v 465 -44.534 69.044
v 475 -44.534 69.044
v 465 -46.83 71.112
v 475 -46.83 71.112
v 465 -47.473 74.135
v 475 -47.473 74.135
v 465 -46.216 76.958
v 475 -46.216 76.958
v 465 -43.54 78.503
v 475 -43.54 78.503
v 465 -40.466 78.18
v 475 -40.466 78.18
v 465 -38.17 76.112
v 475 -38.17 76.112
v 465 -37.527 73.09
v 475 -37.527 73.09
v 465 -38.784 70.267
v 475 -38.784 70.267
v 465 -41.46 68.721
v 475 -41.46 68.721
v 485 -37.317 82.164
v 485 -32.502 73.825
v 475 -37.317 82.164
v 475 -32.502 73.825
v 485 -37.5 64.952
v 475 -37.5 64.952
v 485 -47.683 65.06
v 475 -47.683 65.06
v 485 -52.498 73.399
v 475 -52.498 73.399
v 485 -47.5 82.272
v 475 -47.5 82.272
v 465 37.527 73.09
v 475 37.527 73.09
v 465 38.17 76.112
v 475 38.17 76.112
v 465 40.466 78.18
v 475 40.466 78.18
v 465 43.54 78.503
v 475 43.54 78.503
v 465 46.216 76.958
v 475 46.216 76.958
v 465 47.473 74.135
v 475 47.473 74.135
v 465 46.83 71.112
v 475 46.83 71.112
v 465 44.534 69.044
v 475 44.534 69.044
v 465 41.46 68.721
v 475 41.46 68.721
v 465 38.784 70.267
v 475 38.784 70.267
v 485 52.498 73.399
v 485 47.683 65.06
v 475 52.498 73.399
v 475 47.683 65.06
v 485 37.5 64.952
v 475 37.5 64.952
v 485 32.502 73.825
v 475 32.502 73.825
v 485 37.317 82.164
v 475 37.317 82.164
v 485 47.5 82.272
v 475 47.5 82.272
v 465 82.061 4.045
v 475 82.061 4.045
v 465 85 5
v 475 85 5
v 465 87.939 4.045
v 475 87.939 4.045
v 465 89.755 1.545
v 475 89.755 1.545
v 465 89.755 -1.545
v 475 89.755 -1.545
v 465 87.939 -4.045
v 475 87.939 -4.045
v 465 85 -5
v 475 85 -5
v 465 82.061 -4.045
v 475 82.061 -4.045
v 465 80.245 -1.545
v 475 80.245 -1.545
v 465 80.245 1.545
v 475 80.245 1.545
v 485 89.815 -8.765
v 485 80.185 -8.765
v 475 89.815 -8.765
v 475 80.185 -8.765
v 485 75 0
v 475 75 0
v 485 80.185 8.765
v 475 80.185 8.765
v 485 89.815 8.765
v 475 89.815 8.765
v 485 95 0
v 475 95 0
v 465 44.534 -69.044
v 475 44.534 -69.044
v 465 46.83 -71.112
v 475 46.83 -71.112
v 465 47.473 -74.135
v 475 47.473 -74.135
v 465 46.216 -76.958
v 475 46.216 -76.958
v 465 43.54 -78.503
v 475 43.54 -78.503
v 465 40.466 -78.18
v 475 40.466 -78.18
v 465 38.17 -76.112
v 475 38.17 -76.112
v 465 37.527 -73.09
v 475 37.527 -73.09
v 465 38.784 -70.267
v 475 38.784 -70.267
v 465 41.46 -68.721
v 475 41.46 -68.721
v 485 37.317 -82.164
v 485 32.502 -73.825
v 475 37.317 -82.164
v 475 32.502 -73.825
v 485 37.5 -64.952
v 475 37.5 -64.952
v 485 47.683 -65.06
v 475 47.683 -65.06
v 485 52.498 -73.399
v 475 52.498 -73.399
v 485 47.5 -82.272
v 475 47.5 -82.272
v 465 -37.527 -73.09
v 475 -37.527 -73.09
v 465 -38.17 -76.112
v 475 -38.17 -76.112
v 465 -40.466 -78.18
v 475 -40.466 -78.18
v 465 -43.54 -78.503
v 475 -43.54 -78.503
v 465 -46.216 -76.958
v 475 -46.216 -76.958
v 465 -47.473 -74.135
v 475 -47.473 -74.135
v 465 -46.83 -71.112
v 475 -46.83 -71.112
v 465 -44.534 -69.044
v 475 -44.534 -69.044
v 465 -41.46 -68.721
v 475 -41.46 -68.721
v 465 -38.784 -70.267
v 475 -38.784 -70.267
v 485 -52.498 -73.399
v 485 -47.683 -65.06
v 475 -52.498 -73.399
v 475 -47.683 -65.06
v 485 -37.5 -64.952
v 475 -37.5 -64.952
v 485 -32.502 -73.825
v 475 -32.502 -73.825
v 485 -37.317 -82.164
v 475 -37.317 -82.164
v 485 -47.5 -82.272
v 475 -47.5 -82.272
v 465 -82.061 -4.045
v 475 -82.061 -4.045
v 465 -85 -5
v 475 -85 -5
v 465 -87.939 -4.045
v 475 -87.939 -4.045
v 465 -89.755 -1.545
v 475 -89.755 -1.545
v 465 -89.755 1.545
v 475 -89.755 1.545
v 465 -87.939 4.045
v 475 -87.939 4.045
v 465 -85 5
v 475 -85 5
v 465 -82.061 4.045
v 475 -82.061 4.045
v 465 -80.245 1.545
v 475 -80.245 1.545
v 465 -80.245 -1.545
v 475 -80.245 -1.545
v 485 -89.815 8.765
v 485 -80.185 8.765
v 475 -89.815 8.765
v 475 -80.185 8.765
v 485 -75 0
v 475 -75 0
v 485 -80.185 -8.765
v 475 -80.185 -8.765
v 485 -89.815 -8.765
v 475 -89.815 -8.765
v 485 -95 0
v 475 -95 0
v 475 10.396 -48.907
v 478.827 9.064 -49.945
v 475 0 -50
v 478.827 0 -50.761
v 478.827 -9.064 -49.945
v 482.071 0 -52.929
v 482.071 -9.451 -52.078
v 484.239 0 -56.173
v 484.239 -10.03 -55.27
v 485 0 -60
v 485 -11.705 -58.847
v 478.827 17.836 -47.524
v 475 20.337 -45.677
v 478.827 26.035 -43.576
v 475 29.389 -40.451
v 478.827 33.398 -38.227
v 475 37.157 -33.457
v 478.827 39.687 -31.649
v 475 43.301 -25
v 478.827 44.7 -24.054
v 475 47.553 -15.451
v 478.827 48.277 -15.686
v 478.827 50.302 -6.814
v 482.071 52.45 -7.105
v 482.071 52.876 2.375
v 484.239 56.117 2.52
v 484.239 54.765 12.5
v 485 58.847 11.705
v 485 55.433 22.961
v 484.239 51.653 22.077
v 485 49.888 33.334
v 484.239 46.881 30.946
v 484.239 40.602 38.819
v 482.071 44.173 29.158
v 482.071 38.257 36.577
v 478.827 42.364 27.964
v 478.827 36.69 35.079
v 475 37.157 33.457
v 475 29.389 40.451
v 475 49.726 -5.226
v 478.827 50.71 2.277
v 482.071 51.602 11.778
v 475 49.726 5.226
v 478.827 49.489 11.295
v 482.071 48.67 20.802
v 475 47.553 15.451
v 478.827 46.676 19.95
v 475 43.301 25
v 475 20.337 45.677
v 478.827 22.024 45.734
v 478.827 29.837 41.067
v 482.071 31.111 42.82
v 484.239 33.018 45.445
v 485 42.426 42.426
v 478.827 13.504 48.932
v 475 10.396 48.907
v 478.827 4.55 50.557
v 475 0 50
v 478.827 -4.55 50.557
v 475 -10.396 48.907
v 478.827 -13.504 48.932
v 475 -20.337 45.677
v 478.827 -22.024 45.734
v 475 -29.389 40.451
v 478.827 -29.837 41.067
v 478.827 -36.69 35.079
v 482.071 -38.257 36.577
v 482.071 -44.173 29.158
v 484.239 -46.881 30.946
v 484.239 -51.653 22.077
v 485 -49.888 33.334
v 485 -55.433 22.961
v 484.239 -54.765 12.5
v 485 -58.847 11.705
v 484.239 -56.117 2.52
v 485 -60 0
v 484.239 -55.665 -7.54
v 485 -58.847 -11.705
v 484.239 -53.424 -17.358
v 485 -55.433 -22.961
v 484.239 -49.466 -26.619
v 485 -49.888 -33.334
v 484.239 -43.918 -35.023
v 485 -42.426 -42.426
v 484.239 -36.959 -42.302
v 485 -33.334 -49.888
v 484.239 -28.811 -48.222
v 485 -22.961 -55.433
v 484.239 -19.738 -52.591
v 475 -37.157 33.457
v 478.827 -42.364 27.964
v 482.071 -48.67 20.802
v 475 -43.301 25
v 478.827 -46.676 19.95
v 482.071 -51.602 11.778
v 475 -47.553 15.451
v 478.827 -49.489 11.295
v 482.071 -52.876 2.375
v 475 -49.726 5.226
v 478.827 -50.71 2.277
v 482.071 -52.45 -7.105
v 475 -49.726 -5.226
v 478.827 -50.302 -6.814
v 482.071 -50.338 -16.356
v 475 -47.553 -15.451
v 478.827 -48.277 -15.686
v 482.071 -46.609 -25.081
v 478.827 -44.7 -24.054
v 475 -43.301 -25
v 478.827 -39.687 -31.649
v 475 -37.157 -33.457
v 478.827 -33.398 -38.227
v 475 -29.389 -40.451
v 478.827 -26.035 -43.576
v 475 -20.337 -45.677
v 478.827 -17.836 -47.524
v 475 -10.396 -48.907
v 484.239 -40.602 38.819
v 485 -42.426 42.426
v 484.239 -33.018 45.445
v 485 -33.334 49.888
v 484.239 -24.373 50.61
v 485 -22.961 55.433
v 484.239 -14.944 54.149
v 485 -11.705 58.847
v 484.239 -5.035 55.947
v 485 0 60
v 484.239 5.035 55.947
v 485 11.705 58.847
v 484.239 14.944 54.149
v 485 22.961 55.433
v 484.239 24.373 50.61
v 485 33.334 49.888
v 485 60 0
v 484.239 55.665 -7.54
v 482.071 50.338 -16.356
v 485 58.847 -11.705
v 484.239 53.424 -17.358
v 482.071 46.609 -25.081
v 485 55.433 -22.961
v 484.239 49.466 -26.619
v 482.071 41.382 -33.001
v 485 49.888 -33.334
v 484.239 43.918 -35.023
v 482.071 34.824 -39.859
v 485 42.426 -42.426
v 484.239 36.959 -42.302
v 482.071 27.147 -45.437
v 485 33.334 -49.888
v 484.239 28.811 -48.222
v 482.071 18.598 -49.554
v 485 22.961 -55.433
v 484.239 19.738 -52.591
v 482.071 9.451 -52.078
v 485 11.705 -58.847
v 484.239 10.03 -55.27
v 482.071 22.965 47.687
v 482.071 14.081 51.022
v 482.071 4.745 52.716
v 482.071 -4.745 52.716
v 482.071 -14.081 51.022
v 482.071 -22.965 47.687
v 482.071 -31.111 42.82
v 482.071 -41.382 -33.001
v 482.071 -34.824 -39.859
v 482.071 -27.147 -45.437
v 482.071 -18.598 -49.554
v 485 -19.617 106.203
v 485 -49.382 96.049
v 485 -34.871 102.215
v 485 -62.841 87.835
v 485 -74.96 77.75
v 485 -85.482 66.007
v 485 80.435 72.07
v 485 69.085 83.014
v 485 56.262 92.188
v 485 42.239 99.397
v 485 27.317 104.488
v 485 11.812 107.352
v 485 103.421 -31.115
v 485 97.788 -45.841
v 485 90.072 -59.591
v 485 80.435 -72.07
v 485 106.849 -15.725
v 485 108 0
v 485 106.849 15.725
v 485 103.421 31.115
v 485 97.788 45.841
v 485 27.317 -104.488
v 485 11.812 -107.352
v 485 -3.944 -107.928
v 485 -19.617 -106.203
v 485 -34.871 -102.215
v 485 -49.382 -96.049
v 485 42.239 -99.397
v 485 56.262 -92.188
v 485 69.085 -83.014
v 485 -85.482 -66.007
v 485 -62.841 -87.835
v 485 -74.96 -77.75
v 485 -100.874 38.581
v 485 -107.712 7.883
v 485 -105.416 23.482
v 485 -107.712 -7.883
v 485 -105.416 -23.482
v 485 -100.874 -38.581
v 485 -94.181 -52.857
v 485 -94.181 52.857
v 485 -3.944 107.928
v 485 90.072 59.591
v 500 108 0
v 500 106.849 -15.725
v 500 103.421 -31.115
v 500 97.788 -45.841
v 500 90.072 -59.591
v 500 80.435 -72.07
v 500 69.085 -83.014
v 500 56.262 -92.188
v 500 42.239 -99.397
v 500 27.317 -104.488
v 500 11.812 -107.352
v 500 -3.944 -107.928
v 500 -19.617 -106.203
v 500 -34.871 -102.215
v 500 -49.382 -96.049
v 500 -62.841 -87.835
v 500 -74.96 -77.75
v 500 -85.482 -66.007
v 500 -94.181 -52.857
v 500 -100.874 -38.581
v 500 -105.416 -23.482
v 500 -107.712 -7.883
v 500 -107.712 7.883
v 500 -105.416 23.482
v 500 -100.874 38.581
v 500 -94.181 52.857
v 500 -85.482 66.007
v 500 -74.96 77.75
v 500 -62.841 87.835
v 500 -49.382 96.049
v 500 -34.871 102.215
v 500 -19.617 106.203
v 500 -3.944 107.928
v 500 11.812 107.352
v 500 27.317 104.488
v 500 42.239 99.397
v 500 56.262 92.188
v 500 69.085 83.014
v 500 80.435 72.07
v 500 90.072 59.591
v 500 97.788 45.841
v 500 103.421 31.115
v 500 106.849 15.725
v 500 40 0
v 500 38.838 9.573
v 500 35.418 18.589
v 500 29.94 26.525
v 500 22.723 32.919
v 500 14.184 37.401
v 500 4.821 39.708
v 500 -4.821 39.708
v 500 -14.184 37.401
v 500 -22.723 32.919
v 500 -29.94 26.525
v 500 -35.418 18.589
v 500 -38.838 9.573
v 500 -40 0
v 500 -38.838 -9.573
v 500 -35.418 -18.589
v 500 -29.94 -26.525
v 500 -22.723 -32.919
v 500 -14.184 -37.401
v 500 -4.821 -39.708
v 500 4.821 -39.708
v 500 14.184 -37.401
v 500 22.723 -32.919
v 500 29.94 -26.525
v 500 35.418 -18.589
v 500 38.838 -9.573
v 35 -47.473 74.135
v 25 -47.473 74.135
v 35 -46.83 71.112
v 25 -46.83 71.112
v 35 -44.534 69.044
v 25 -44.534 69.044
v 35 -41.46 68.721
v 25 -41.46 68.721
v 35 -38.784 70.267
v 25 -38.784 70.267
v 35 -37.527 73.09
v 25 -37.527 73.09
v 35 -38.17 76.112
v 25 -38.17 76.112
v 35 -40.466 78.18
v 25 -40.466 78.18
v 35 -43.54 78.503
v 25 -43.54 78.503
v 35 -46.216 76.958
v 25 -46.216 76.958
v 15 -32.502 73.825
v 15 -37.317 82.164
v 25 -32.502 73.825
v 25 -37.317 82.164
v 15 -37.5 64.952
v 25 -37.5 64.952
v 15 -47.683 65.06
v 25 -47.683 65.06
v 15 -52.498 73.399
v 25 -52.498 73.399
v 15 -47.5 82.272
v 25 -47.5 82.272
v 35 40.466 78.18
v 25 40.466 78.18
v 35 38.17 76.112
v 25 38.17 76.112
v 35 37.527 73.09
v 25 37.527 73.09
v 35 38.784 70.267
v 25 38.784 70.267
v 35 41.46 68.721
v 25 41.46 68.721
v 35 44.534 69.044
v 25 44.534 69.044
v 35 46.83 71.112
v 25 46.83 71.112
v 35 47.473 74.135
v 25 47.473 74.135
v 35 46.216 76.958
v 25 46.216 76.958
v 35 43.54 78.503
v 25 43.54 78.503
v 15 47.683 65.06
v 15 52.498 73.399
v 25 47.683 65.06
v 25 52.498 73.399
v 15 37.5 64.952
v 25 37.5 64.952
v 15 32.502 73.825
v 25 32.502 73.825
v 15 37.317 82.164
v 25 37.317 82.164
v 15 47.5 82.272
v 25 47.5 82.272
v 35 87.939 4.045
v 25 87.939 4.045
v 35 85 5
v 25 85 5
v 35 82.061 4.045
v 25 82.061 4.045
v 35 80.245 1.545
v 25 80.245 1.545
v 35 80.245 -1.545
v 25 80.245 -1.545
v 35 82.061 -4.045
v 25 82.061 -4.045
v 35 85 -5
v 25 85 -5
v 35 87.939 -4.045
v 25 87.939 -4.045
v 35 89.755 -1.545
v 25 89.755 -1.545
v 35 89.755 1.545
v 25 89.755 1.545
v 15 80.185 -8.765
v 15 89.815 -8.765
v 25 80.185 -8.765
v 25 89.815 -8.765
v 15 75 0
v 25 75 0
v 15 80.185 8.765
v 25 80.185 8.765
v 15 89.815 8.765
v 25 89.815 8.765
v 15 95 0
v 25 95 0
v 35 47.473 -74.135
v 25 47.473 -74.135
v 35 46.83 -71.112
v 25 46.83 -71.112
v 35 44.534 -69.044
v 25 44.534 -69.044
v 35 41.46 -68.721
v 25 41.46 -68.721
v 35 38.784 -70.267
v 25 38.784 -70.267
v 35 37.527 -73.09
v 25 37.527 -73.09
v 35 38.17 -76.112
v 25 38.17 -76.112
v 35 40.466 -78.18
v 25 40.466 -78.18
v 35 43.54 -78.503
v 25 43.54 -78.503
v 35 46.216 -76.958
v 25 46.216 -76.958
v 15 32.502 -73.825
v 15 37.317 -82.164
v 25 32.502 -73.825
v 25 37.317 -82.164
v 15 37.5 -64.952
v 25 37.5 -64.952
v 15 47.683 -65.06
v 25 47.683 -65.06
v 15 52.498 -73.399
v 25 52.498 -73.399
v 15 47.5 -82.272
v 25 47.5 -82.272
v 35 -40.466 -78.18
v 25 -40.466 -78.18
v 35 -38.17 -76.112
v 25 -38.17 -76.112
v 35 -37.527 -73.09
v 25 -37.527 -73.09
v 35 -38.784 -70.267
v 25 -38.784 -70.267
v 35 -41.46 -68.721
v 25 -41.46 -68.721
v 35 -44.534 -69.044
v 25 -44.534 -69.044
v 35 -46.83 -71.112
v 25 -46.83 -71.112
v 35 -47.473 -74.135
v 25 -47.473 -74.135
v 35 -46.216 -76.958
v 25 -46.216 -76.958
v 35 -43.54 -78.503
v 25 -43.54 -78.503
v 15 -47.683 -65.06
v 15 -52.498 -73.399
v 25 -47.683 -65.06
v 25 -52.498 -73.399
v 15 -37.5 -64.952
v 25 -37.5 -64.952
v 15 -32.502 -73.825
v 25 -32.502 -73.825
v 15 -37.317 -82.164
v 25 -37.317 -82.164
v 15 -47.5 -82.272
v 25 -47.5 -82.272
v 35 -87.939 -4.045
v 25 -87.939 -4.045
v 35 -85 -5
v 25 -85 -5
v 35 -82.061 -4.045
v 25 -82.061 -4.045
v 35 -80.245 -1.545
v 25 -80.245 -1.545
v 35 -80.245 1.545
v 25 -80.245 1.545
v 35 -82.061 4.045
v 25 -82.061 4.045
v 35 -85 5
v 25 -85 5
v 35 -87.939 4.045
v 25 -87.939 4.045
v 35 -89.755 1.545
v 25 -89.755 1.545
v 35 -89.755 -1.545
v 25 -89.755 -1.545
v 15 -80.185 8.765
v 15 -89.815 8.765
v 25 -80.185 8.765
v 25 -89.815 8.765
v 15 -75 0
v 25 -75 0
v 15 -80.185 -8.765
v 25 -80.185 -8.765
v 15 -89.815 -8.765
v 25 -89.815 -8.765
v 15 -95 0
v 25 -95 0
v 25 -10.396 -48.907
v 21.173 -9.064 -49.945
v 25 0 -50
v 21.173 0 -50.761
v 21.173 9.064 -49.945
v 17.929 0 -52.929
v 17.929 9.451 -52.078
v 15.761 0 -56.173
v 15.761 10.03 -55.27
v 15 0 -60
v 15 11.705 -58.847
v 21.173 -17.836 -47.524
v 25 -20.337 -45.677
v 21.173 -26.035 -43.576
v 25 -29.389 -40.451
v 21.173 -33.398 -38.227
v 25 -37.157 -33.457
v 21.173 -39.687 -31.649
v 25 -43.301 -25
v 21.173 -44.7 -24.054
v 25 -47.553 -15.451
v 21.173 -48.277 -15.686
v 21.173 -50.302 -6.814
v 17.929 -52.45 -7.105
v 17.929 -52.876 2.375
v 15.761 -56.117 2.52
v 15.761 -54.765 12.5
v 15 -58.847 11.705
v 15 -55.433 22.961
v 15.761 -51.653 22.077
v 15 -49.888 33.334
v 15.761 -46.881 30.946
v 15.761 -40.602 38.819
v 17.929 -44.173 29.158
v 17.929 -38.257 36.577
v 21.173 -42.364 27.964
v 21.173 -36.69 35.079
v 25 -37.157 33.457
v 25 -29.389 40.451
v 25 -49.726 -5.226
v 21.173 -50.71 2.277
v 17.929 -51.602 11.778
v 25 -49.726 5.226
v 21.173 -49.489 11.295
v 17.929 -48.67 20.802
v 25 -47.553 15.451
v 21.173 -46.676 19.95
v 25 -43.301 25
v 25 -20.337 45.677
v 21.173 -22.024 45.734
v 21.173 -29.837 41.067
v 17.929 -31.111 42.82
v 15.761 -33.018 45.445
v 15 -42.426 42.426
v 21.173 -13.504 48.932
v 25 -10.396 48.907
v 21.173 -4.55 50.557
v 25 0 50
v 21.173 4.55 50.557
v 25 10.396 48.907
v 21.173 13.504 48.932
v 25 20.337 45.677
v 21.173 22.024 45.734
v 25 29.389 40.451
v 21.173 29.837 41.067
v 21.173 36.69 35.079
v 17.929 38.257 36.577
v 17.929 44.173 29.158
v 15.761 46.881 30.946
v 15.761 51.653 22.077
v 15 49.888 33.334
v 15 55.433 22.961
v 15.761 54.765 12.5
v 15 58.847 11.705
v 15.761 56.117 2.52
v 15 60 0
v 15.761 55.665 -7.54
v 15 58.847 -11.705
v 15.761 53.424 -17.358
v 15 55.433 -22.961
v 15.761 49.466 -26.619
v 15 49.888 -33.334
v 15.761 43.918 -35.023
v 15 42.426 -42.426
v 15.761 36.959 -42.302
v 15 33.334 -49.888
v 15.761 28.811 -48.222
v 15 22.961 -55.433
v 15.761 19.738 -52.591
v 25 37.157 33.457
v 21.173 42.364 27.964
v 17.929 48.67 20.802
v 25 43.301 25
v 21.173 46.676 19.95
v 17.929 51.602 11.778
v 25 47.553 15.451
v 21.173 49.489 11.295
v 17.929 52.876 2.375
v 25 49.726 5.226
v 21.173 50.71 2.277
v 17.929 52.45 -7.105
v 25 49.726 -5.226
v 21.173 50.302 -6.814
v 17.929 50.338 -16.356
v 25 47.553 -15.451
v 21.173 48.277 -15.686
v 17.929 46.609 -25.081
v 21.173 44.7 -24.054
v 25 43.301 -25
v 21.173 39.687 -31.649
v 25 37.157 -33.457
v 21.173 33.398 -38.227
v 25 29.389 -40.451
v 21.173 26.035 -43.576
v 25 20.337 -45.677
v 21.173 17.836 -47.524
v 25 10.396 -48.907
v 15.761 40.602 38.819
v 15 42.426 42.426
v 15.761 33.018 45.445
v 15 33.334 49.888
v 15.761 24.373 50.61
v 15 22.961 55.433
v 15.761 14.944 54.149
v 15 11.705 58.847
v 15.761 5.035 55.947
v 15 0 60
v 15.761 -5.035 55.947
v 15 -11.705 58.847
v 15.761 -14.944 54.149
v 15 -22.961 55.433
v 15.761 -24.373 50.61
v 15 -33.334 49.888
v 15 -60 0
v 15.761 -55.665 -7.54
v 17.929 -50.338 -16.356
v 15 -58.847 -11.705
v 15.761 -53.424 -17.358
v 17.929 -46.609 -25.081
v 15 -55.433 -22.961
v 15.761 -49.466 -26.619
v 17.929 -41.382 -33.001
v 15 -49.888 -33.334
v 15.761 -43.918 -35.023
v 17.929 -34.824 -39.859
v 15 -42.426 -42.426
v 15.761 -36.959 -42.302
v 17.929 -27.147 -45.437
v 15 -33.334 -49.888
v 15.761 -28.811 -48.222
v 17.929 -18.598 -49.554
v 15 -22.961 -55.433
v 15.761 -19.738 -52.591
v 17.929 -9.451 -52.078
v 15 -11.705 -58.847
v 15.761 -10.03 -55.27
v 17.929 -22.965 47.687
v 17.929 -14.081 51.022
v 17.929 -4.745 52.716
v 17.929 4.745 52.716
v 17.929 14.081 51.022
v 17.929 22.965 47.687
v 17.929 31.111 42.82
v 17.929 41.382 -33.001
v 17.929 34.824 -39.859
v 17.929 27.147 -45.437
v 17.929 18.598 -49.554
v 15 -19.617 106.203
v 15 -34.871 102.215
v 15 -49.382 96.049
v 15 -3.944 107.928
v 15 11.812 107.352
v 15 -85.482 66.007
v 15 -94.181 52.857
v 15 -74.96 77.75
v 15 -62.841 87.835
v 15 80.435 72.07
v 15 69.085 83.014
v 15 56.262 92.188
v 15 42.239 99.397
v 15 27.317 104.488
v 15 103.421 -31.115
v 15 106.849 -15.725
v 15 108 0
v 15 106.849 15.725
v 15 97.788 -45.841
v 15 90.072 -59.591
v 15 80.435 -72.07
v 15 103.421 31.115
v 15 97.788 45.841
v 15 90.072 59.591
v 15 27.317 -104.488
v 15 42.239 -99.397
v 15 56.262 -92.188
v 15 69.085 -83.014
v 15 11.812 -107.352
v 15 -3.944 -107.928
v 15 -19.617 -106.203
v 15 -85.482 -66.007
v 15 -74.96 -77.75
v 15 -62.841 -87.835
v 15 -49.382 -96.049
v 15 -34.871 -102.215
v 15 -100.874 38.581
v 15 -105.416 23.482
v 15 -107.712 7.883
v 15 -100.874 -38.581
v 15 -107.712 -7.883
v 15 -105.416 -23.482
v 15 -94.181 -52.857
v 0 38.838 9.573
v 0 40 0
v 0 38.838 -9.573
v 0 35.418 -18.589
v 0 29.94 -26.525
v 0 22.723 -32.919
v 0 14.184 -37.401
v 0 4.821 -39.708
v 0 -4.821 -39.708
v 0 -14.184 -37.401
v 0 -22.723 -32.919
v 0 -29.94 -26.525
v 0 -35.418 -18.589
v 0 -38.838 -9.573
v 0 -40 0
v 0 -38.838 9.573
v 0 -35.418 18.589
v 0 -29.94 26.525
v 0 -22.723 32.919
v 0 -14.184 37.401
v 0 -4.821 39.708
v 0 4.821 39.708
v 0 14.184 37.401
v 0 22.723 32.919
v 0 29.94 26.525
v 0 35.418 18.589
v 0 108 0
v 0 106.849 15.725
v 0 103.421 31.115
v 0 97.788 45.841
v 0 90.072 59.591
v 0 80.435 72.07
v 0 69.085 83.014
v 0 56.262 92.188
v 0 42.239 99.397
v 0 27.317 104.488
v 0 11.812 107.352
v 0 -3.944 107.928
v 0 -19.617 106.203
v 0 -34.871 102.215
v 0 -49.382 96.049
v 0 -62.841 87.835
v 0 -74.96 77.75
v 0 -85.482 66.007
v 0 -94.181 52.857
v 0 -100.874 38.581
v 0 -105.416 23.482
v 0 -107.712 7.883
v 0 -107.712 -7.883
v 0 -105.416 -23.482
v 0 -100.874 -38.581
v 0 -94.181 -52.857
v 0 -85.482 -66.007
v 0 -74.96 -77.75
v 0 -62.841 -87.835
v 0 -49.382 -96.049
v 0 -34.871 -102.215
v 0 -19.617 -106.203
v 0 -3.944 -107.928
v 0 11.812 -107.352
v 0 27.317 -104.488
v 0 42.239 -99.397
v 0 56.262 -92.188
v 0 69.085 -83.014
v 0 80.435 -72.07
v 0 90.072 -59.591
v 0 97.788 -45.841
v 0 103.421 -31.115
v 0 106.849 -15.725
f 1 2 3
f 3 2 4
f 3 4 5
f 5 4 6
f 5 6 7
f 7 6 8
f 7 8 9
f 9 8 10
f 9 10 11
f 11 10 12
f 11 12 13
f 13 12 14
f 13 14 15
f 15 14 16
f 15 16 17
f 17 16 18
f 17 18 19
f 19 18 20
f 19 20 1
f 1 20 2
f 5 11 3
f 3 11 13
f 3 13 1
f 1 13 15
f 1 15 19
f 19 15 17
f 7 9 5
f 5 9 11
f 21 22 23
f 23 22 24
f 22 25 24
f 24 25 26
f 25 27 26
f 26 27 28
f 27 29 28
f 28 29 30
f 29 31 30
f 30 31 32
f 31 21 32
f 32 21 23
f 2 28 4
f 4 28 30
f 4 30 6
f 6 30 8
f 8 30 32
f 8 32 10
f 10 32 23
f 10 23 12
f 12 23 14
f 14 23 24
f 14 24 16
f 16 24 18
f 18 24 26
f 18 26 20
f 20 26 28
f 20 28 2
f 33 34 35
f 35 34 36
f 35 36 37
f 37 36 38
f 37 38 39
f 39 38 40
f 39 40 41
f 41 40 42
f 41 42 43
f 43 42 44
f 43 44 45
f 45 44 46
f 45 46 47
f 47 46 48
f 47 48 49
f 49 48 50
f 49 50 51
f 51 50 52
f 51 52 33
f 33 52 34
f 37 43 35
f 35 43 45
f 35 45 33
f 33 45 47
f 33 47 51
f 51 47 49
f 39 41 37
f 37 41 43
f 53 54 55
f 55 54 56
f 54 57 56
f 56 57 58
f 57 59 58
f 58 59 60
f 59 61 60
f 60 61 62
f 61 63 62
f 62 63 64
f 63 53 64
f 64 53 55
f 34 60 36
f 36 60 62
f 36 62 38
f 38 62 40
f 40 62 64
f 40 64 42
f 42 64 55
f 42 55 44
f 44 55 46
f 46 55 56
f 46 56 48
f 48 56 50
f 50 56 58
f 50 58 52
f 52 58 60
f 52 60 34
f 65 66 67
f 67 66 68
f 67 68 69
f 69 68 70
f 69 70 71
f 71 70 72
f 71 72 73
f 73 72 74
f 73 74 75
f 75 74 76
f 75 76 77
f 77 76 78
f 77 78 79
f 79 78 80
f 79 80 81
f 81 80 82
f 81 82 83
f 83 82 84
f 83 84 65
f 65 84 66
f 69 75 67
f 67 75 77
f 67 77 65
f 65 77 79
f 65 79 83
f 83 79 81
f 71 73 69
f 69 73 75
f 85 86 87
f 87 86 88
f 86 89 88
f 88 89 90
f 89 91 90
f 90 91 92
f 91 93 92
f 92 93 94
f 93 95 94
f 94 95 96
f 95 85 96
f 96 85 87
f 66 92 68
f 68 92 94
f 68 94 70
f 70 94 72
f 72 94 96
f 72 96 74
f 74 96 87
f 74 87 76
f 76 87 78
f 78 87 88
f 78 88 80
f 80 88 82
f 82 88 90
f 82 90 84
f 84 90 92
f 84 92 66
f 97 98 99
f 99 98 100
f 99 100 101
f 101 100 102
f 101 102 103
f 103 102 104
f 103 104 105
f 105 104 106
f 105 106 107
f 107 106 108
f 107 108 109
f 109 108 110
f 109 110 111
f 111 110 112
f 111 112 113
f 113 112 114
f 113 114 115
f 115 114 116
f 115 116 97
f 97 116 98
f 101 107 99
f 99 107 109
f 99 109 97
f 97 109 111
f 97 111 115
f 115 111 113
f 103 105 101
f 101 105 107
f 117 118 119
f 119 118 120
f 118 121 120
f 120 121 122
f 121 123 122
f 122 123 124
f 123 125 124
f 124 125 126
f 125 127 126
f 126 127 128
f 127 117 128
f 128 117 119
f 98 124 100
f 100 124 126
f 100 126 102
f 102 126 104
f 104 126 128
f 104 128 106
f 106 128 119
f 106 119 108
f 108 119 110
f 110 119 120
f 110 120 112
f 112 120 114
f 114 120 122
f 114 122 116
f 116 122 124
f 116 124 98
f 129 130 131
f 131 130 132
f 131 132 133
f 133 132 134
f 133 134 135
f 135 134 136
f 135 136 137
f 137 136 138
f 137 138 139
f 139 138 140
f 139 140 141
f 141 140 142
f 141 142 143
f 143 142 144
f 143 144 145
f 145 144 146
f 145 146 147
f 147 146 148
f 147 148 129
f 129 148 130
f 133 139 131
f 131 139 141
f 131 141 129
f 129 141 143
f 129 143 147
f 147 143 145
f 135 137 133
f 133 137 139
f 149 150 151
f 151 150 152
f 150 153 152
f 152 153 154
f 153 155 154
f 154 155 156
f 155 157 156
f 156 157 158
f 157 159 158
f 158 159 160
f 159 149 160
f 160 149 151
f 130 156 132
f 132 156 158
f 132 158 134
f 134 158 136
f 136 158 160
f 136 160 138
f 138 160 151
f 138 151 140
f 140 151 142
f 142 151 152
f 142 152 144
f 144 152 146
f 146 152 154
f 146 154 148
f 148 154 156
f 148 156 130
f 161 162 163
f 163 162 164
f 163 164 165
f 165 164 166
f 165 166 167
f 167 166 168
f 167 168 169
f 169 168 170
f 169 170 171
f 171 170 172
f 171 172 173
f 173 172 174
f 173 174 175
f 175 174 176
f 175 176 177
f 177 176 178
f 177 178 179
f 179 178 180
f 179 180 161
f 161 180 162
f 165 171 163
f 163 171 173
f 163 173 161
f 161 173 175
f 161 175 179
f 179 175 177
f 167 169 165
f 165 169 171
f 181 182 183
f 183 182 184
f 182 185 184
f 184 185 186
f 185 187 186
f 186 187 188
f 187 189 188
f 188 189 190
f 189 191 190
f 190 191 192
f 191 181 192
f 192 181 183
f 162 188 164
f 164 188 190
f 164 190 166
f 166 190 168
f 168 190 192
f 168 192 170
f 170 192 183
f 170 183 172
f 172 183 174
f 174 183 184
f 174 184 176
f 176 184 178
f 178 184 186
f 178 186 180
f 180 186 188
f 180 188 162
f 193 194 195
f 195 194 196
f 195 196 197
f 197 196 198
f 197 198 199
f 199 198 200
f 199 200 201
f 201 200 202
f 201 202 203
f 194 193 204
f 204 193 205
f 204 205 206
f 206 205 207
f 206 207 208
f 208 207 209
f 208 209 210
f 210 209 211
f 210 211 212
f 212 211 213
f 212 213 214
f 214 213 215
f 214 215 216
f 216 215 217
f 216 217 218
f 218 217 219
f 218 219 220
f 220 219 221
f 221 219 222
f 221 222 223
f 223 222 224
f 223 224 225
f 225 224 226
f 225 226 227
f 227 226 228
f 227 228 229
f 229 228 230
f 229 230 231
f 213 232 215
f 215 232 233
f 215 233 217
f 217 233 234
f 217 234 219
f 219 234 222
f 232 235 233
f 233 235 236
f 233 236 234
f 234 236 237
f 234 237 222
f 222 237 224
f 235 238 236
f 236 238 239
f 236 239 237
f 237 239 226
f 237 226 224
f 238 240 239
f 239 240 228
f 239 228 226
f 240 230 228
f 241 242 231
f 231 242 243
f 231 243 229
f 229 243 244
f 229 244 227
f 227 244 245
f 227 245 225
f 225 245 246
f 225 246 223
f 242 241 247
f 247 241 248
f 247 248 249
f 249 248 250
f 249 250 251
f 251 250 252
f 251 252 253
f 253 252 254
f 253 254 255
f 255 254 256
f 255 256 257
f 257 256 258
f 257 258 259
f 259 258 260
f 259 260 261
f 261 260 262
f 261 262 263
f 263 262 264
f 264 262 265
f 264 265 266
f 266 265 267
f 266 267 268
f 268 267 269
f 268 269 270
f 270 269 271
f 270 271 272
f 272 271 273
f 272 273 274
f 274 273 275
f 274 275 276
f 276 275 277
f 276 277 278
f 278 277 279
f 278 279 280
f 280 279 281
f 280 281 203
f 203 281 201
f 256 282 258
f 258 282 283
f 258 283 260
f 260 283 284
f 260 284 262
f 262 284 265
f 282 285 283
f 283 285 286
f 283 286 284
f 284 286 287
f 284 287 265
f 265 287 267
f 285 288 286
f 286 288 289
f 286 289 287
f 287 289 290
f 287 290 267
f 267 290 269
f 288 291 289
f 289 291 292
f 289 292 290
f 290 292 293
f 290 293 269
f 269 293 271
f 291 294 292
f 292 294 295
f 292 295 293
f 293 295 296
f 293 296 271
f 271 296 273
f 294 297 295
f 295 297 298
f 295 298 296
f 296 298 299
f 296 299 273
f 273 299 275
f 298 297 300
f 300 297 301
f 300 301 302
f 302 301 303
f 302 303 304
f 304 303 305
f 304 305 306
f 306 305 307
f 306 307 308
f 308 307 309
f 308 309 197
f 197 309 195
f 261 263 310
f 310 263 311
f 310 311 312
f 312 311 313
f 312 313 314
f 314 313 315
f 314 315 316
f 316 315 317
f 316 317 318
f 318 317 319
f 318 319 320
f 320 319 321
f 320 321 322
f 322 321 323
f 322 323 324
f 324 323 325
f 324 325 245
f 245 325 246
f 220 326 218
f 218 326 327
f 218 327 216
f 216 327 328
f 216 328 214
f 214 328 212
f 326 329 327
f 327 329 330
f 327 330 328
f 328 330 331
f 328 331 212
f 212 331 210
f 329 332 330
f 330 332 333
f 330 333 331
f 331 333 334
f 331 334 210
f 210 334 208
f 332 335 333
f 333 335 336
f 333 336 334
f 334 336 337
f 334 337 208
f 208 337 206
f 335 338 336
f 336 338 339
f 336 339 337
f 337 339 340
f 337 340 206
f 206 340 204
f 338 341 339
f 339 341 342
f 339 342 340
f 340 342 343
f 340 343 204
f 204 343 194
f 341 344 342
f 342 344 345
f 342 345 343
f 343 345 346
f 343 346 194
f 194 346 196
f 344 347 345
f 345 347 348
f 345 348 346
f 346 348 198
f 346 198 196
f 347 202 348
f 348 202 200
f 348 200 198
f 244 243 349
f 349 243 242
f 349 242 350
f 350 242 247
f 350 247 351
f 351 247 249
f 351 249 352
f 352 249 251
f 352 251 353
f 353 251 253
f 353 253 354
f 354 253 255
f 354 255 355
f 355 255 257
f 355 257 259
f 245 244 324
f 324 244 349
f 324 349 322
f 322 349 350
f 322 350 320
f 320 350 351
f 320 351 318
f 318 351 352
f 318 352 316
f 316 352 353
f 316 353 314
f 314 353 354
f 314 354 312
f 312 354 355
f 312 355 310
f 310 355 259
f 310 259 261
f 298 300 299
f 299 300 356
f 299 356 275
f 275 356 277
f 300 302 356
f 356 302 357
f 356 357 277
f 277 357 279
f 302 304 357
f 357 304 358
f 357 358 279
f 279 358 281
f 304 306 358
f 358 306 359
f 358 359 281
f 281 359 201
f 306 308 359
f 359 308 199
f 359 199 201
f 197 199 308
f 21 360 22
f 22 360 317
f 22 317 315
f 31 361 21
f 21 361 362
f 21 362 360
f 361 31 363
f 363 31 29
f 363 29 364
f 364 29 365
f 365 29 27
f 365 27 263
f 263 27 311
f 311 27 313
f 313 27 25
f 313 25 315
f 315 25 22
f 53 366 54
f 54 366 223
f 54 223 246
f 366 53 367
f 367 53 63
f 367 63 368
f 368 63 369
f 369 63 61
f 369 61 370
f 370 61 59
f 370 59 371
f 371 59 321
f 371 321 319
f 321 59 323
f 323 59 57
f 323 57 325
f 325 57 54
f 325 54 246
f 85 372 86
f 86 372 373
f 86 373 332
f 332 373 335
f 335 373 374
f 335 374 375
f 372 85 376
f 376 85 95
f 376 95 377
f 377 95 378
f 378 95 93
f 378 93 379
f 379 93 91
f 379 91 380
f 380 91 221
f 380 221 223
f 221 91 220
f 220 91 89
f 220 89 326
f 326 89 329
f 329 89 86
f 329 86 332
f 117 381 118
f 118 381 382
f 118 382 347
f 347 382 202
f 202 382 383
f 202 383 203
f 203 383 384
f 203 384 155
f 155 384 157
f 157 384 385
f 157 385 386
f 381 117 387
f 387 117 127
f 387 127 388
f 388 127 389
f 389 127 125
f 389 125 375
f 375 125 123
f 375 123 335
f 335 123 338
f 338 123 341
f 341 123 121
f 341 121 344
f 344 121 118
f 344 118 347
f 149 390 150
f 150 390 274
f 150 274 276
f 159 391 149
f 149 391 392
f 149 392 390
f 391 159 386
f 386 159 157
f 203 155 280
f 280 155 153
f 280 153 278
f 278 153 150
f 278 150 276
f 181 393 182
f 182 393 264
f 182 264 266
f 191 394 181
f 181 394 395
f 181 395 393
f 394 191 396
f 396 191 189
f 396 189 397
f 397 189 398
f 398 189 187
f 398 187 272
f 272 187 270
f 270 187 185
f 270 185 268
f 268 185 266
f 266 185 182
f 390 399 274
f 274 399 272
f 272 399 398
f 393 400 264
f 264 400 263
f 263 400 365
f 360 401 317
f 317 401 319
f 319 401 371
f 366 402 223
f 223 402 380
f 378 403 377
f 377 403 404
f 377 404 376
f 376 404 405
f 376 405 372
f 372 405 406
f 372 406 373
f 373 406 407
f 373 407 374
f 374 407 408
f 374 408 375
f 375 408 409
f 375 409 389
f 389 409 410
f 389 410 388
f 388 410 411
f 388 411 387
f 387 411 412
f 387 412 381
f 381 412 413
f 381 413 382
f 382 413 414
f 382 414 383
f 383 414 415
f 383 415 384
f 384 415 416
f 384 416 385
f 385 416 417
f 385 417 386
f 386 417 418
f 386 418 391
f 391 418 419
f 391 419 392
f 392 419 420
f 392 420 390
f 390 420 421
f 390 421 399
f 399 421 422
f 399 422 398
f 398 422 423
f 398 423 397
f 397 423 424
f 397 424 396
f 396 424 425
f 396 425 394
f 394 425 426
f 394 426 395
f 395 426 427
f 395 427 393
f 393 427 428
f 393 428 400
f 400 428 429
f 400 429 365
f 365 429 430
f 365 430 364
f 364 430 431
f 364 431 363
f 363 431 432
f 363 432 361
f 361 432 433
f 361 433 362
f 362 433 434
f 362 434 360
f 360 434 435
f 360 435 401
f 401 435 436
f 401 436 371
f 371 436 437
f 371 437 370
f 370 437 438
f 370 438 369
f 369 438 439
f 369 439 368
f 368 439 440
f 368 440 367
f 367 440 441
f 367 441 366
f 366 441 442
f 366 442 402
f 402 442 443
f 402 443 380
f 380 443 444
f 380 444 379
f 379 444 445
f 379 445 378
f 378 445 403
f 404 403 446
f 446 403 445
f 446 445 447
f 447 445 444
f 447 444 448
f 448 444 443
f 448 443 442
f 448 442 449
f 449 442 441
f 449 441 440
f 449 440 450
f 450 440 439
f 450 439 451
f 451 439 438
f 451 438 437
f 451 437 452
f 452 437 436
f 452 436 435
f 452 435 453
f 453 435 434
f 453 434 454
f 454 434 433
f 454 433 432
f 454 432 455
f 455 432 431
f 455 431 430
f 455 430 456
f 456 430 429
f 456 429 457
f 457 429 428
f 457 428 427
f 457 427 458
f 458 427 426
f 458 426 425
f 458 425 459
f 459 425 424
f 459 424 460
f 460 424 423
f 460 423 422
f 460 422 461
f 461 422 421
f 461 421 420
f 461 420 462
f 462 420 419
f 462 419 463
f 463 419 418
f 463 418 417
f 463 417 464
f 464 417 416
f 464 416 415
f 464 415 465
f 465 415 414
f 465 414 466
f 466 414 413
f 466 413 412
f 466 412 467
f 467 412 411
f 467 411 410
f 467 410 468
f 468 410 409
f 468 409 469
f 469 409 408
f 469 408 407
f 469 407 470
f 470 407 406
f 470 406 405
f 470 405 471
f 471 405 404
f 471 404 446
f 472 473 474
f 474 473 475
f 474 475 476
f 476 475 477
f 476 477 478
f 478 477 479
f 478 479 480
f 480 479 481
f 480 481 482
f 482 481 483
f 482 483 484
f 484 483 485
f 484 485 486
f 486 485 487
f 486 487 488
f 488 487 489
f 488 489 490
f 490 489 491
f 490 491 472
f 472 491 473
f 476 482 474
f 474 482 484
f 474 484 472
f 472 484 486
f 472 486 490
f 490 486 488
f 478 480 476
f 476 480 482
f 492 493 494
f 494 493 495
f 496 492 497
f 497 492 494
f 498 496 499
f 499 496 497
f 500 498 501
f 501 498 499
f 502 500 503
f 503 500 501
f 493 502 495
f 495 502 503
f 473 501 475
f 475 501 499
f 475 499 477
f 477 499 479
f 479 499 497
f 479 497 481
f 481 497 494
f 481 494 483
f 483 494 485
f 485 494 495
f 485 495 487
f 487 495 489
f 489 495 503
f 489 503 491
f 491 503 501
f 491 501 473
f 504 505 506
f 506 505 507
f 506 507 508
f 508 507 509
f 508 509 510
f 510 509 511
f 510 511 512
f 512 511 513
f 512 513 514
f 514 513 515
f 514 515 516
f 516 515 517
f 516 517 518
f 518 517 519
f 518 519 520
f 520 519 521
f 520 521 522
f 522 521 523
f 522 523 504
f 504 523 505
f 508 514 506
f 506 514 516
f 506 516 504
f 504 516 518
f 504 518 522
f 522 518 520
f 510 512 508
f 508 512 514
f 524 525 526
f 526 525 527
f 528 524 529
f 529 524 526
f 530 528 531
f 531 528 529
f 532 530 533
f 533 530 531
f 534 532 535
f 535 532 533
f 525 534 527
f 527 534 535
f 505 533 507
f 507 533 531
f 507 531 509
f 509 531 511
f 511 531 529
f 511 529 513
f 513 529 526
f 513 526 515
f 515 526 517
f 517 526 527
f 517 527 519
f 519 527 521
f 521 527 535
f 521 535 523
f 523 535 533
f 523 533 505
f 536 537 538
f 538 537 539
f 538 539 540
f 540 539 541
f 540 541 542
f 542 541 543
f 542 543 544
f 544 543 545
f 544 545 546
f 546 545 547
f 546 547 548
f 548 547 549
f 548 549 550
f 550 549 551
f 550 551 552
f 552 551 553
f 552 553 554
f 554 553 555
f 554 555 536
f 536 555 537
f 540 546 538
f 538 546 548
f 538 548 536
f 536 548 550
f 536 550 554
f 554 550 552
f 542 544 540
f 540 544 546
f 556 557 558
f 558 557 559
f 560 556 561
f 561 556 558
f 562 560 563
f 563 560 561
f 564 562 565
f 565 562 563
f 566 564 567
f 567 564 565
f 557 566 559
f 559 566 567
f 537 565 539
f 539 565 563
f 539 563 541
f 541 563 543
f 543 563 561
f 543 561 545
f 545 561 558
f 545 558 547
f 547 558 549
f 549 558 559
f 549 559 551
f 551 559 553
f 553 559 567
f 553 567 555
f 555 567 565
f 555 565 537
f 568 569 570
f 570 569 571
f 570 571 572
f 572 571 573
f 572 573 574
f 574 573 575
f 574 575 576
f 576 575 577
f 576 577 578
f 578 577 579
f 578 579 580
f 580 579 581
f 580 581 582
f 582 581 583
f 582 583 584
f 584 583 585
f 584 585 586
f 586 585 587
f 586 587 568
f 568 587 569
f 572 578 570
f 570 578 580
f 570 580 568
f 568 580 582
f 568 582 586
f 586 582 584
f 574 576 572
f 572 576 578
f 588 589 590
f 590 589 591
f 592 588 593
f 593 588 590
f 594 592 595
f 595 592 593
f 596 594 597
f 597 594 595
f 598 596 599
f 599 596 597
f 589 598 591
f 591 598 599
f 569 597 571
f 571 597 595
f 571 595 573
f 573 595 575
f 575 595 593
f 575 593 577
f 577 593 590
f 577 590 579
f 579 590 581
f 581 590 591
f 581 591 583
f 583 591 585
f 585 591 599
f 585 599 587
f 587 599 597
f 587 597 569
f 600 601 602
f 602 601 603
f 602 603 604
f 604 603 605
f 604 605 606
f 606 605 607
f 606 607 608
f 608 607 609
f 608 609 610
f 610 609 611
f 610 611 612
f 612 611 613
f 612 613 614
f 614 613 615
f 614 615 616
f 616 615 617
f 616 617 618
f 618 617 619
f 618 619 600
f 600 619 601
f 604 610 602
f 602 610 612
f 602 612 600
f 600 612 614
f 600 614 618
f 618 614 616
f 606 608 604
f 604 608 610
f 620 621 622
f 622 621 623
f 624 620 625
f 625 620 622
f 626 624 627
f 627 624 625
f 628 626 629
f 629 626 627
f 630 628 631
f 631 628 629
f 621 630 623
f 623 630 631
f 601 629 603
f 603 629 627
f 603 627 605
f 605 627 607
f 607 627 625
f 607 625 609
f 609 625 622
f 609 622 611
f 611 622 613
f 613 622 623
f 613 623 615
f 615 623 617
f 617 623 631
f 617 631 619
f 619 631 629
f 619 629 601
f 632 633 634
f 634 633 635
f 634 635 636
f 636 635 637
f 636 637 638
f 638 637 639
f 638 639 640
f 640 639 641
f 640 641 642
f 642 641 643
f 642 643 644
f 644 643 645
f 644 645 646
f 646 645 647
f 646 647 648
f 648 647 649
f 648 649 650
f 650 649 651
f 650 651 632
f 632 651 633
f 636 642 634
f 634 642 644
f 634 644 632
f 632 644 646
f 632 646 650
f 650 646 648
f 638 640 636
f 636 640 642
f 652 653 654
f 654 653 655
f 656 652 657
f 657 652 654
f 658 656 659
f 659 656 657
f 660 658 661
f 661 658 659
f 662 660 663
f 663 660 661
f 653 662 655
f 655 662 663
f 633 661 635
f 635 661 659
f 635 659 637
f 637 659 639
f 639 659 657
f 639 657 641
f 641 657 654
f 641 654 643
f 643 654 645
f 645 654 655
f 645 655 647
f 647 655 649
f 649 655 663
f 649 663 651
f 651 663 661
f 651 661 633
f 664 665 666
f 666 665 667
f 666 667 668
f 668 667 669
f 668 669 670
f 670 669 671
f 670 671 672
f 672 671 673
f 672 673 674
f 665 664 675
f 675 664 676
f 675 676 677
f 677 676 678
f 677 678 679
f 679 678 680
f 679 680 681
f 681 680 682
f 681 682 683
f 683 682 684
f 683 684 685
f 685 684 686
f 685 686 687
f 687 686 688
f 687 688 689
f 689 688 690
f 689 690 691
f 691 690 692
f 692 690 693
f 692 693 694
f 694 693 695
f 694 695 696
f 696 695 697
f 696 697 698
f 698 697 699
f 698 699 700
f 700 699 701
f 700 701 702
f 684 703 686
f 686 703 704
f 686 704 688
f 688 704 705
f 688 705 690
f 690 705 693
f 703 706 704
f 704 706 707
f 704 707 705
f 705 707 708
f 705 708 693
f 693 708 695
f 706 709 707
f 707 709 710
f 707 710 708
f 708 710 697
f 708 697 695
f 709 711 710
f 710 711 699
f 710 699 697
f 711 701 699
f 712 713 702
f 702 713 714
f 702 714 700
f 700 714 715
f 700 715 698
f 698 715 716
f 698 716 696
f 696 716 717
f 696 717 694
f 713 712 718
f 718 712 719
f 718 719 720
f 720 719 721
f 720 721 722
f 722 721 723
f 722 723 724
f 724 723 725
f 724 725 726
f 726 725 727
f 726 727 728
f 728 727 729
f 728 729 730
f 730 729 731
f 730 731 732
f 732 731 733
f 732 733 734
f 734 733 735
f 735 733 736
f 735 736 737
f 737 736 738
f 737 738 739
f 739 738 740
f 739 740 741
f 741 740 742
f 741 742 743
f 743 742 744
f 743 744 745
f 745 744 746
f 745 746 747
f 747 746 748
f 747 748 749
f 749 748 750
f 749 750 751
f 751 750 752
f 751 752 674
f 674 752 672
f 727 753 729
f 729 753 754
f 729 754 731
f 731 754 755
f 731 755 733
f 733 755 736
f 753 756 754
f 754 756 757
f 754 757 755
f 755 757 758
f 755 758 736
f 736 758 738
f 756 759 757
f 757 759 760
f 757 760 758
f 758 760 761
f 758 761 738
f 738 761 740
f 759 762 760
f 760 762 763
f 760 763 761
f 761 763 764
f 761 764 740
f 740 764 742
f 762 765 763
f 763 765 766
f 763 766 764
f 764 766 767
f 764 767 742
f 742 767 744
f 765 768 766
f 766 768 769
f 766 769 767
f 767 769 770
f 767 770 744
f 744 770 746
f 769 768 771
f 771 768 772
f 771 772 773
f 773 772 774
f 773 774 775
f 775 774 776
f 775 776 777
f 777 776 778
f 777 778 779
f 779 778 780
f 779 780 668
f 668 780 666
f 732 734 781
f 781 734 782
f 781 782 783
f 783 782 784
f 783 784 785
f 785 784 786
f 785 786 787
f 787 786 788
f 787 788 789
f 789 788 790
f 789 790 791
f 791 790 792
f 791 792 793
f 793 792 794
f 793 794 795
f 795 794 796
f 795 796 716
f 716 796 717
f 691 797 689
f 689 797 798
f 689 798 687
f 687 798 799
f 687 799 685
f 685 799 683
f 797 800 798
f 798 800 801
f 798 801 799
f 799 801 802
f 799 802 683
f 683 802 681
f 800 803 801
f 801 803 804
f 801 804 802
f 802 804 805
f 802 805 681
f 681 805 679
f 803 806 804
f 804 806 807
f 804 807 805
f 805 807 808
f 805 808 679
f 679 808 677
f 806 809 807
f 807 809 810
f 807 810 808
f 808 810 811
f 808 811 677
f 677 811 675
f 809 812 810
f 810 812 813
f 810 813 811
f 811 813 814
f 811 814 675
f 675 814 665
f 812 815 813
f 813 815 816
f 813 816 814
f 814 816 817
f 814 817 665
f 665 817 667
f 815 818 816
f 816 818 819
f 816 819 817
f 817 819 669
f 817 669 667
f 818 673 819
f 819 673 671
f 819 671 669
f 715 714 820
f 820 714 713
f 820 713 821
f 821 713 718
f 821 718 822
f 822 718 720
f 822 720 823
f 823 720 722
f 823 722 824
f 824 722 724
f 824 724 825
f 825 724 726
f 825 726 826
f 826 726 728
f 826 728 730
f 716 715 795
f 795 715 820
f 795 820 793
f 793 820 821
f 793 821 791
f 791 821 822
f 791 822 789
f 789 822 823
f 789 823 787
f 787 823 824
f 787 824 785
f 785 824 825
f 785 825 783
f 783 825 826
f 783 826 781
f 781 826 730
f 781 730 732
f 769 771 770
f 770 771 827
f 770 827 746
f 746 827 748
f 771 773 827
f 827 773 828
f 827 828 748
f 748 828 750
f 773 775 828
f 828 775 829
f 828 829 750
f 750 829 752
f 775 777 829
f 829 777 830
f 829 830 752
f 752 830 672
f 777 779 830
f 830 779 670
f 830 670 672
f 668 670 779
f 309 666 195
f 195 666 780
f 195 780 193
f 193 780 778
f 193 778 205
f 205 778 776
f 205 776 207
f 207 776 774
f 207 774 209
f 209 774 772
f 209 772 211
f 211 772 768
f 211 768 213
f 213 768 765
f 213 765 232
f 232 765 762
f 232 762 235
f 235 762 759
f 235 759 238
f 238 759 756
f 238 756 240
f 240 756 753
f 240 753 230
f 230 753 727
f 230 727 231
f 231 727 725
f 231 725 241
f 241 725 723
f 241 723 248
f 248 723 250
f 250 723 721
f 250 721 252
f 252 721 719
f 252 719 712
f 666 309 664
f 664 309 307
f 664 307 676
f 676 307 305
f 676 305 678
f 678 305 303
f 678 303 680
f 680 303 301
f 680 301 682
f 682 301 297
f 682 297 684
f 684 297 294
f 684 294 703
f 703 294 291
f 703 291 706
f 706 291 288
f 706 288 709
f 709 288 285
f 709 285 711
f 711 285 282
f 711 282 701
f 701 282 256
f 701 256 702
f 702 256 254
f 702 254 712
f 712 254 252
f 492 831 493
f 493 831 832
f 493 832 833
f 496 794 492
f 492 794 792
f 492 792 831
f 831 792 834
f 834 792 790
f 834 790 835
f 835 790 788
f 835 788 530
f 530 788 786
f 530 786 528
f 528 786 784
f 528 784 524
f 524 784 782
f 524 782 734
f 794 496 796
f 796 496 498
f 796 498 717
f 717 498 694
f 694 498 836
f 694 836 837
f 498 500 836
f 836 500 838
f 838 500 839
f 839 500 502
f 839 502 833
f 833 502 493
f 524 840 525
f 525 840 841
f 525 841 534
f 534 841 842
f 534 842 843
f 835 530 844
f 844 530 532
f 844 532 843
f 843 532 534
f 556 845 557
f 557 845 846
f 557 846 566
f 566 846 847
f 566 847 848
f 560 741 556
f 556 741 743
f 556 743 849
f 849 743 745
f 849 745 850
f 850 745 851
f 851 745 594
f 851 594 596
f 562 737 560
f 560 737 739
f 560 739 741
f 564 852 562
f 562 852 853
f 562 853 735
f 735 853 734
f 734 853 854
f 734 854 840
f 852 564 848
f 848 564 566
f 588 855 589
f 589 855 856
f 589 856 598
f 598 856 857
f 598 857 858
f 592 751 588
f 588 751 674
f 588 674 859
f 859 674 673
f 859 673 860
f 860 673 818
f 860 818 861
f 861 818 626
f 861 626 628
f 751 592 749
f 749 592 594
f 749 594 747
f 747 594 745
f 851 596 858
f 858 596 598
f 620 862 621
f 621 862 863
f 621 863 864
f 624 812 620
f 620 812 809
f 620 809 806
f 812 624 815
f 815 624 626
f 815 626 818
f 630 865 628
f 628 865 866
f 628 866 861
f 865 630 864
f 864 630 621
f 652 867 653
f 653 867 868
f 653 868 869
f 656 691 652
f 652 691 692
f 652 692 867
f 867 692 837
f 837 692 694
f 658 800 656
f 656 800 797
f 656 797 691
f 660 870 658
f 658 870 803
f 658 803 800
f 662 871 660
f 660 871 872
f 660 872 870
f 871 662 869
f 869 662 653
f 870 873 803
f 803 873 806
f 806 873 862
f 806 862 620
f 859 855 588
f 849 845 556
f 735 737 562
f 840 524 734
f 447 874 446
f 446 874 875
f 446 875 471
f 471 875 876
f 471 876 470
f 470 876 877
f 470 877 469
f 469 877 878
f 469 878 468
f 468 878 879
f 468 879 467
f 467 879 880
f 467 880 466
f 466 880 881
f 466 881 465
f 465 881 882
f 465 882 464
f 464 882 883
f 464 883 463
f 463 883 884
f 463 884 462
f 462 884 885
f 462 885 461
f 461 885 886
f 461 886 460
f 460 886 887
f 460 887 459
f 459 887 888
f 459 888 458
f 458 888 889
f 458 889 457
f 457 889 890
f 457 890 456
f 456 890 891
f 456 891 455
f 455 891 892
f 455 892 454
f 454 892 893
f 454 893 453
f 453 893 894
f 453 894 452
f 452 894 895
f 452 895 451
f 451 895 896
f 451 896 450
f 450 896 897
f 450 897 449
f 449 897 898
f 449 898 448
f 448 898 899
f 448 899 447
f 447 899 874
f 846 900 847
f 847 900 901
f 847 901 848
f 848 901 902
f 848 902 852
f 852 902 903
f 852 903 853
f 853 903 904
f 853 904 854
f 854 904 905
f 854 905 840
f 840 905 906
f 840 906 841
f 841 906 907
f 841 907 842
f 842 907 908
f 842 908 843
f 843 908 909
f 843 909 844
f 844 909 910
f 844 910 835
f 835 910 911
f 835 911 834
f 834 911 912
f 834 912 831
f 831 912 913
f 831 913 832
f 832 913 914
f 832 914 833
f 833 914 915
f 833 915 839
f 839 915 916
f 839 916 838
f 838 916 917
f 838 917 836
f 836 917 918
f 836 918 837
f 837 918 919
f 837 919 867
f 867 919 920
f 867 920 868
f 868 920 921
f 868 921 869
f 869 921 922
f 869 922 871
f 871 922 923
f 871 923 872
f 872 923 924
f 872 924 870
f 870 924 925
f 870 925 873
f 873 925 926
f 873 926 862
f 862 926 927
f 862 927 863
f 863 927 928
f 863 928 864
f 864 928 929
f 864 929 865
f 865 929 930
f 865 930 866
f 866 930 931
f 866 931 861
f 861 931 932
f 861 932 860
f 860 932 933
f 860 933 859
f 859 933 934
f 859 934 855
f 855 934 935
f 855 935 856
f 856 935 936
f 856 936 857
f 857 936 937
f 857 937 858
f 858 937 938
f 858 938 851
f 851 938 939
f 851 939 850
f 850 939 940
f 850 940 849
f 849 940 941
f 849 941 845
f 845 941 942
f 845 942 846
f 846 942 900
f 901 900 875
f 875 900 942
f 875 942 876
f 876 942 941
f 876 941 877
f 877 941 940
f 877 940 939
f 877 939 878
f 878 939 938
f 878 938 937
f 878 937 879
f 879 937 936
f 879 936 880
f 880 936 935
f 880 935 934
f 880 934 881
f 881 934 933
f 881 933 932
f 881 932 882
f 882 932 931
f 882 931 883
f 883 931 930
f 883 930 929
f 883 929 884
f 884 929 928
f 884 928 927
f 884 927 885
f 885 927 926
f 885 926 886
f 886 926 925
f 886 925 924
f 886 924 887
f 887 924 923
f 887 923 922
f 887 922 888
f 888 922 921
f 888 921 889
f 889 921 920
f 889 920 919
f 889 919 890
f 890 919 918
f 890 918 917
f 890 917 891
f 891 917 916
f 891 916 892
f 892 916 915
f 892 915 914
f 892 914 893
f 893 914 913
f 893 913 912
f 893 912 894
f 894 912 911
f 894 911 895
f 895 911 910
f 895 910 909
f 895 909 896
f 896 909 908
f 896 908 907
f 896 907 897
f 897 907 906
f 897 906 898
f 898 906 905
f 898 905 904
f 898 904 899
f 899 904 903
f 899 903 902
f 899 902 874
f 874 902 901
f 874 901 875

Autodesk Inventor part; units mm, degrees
ref_plane "YZ Plane" through (0, 0, 0) normal (1, 0, 0) x (0, 1, 0)
ref_plane "XZ Plane" through (0, 0, 0) normal (0, 1, 0) x (-1, 0, 0)
ref_plane "XY Plane" through (0, 0, 0) normal (0, 0, 1) x (1, 0, 0)
sketch "Skizze1" plane through (0, 0, 0) normal (1, 0, 0) x (0, 1, 0)
  circle A0 centre (0, 0) radius 40
  circle A1 centre (0, 0) radius 108
  dimension "d0" = 216
  dimension "d1" = 80
extrude "Extrusion1" add sketch "Skizze1" along normal blind 15
sketch "Skizze2" plane through (15, 0, 0) normal (1, 0, 0) x (0, 0, -1)
  circle A0 centre (0, 0) radius 40
  circle A1 centre (0, 0) radius 50
  dimension "d4" = 100
extrude "Extrusion2" add sketch "Skizze2" along normal blind 235
fillet "Rundung1" radius 10 1 edges at (15, 0, 50)
sketch "Skizze3" plane through (15, 0, 0) normal (1, 0, 0) x (0, 0, -1)
  circle A0 centre (0, -85) radius 10 construction
  line L0 (0, -95) -> (-8.7647, -89.8146)
  line L1 (-8.7647, -80.1854) -> (0, -75)
  line L2 (0, -75) -> (8.7647, -80.1854)
  line L3 (8.7647, -80.1854) -> (8.7647, -89.8146)
  line L4 (0, -95) -> (8.7647, -89.8146)
  line L5 (-8.7647, -80.1854) -> (-8.7647, -89.8146)
  point P0 (0, 0)
  dimension "d8" = 20
  dimension "d9" = 85
extrude "Extrusion3" add sketch "Skizze3" along normal blind 10
sketch "Skizze4" plane through (25, 0, 0) normal (1, 0, 0) x (0, 0, -1)
  circle A0 centre (0, -85) radius 5
  point P0 (0, 0)
  dimension "d12" = 10
extrude "Extrusion4" add sketch "Skizze4" along normal blind 10
pattern_circular "Runde Anordnung1" count 6 over 360 about axis through (-10, 0, 0) along (1, 0, 0) of "Extrusion3", "Extrusion4"
mirror "Spiegeln1" about plane through (250, 0, 0) normal (1, 0, 0) of "Extrusion3", "Extrusion4", "Runde Anordnung1", "Extrusion2", "Extrusion1", "Rundung1"
properties part number "DN80-05m"
